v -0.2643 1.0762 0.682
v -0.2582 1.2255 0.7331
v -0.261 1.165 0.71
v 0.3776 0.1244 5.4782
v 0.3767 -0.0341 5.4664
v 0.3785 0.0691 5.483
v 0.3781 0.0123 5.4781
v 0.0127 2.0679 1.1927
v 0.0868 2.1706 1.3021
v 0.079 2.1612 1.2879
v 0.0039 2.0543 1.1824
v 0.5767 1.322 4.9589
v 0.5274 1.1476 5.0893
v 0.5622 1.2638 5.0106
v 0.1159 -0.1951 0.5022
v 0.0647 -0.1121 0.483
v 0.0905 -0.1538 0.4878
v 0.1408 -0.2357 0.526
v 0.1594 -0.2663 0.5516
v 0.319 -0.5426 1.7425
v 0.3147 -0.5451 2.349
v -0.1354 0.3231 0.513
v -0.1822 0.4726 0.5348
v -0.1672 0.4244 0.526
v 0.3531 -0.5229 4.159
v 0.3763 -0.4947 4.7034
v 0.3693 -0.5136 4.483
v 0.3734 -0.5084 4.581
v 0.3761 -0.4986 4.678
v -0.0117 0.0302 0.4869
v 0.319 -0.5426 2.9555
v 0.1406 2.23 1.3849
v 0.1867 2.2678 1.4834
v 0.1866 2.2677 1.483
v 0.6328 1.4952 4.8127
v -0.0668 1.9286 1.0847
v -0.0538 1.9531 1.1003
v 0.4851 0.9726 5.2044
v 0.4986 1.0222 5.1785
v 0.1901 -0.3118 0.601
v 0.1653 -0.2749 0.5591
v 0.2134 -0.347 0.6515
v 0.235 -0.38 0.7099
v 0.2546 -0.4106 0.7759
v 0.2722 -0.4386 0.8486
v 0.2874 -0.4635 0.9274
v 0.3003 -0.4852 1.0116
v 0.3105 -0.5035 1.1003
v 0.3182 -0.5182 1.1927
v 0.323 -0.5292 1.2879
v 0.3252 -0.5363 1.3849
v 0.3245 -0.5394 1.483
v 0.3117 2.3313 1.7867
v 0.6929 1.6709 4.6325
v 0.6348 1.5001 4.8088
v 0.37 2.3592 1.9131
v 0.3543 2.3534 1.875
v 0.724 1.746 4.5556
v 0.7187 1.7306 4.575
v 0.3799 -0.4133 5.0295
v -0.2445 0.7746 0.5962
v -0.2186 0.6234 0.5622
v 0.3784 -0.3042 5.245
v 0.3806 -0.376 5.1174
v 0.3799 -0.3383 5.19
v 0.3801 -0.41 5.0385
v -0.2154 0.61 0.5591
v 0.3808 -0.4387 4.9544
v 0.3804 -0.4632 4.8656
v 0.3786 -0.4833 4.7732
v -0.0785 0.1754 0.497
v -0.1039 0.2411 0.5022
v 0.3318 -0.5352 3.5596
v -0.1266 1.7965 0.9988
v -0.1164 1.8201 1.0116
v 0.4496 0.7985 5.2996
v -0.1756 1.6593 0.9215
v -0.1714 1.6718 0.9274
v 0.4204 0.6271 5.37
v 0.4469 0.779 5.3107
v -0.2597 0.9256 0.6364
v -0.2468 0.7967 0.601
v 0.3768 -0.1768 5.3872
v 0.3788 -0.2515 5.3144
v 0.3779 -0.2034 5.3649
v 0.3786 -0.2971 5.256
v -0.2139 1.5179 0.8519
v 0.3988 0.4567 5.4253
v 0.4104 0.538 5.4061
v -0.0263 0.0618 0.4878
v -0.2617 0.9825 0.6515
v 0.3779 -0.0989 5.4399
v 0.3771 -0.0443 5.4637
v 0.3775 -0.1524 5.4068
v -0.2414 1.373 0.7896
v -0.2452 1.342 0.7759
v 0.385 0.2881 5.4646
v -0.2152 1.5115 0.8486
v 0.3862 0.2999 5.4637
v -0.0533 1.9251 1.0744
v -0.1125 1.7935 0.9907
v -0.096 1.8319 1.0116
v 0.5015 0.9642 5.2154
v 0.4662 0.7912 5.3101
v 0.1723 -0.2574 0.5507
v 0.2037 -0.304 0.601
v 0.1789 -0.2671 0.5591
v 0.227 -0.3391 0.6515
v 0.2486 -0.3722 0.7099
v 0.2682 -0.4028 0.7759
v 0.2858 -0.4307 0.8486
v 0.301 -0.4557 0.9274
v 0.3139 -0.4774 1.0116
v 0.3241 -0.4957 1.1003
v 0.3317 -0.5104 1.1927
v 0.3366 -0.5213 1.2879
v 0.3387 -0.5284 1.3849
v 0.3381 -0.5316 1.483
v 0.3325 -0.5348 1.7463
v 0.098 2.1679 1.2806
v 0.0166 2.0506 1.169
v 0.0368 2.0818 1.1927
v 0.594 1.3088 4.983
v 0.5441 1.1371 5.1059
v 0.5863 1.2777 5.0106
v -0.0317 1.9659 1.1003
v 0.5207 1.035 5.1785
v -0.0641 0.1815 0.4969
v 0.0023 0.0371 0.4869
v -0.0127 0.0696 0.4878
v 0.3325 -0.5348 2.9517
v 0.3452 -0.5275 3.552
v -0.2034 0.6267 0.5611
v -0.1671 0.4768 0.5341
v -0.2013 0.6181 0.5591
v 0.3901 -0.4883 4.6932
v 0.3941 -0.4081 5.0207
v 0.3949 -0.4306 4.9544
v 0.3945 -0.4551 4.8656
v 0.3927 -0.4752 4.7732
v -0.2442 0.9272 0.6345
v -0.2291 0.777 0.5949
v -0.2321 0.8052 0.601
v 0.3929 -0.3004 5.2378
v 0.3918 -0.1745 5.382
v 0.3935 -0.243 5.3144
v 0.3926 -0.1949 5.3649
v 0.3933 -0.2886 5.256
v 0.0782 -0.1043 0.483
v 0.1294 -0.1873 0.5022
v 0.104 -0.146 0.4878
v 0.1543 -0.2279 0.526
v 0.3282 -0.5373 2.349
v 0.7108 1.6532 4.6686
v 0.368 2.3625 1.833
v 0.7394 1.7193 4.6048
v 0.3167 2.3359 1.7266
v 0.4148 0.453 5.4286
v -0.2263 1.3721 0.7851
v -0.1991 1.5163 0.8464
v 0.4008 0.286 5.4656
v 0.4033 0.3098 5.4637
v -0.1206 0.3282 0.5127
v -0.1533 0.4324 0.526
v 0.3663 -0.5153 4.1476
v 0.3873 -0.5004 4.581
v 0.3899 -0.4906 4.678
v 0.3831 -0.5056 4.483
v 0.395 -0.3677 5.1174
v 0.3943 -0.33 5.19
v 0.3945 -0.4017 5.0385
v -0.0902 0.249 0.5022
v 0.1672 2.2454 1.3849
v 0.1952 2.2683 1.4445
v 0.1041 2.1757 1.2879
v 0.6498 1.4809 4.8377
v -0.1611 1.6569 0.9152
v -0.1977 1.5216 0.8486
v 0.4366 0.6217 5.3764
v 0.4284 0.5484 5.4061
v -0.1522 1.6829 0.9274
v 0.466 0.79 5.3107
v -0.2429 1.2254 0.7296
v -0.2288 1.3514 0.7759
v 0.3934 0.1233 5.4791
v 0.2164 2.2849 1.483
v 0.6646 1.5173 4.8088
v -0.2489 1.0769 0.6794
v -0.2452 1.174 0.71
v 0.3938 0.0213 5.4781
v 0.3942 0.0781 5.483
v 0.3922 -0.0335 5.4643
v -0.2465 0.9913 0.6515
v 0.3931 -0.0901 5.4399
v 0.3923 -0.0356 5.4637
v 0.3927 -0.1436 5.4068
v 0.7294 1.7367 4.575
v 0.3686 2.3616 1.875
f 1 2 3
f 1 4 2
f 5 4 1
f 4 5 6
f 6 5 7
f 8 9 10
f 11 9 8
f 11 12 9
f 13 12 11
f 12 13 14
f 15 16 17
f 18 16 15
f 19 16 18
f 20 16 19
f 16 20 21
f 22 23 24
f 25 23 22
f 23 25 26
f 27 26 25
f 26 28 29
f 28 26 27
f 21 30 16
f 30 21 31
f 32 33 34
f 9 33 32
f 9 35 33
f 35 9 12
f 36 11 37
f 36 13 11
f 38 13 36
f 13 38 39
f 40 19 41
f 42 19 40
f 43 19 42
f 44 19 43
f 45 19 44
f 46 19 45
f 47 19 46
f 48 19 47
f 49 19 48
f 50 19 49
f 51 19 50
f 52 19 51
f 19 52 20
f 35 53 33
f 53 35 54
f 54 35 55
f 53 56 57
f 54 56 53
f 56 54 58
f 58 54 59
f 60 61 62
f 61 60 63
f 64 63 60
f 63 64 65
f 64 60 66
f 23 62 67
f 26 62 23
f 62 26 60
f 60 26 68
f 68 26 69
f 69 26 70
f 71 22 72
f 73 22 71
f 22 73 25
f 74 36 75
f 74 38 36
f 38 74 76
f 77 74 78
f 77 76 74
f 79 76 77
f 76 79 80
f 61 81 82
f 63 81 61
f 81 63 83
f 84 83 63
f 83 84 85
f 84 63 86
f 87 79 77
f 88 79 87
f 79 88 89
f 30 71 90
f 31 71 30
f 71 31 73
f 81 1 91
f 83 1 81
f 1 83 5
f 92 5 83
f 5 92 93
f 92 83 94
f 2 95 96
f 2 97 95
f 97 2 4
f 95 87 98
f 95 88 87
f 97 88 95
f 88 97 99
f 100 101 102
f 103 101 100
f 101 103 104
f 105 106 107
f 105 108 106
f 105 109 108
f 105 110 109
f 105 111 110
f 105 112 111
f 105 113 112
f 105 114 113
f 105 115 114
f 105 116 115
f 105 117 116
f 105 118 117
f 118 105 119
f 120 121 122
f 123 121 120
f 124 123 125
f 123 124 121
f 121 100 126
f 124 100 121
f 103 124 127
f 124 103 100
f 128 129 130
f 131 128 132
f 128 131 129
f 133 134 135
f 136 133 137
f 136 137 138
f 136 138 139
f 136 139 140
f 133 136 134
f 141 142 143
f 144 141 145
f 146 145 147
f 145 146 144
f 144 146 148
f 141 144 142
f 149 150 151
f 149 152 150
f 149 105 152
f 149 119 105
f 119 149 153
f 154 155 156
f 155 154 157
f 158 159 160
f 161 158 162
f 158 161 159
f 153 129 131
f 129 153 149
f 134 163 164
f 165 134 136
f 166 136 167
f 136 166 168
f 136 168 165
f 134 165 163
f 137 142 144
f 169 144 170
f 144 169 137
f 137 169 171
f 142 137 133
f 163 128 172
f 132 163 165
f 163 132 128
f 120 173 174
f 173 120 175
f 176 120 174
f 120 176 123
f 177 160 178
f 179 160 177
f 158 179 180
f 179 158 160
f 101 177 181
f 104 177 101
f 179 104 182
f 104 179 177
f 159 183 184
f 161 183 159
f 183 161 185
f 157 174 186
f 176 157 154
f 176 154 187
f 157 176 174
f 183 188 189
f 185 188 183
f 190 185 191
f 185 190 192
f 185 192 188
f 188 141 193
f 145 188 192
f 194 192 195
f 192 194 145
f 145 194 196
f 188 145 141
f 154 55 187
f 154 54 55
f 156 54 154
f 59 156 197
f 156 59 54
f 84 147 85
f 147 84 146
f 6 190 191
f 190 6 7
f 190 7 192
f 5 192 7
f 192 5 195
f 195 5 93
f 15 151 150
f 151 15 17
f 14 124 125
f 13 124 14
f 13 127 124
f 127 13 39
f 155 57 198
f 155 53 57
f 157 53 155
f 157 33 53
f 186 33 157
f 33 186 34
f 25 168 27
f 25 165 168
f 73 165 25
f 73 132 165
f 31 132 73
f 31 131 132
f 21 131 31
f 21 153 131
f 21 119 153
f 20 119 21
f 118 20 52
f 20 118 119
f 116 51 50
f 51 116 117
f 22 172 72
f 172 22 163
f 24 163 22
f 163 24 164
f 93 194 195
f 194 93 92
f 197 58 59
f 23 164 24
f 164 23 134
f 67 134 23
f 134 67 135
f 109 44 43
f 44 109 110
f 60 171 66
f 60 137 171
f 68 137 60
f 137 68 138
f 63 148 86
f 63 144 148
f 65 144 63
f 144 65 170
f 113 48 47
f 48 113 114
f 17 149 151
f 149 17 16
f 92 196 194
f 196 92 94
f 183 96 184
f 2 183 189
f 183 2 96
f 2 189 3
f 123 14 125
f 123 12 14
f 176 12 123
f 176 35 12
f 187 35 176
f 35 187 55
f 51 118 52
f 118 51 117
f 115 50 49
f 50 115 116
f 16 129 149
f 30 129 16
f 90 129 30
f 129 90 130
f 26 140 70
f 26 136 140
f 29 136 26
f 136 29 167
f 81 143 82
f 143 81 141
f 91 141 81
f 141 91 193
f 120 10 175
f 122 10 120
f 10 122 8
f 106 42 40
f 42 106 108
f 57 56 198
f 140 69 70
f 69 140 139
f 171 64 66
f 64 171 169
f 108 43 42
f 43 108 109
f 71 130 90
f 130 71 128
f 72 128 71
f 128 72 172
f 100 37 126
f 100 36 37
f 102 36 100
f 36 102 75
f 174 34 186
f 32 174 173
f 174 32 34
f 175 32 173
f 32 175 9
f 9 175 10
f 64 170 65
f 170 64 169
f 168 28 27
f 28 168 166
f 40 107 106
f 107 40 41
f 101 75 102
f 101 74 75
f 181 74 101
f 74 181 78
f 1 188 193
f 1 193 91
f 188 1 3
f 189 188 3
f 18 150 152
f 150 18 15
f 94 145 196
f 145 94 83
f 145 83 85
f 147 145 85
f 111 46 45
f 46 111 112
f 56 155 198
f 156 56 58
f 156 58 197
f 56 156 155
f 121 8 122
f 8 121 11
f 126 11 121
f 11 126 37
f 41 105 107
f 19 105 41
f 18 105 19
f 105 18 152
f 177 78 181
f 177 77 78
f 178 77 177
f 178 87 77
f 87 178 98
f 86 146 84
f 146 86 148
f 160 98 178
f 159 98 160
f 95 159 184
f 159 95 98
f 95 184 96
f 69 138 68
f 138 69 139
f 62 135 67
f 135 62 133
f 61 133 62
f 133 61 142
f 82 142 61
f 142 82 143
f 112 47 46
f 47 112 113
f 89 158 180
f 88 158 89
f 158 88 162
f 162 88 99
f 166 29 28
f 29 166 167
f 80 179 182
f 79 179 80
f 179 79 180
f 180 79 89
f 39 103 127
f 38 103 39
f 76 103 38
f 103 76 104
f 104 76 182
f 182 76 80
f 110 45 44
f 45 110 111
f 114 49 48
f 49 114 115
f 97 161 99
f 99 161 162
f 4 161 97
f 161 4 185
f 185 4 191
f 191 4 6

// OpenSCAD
// file: ../../constraints.scad
//####################################
// Math-Magik LPP - Design Constraints
// (c) 2021 by Roie R. Black
//====================================

// AMA Rules for event 208
//------------------------------------

max_overall_length = 20;
max_projected_wing_span = 18;
max_bearing_to_rear_hook = 10;
max_wing_chord = 5;
max_stab_span = 12;
max_stab_chord = 4;
max_prop_diameter = 12;
// file: ../colors.scad
// colors.scad
// Credit: David Powell, OpenSCAN Forum



//group ABS_<colorname>
//	discription  common 3d printer ABS filament colors
// actual colours may need some tweaking

ABS_Nature =[0.8,0.8,0.8,0.8];
ABS_White =[0.9,0.9,0.9,1];
ABS_Black =[0.1,0.1,0.1,1];
ABS_Red = [0.7,0,0,1];
ABS_Green = [0,0.7,0,1];
ABS_Blue = [0,0,0.7,1];
ABS_Orange =[0.8,0.4,0,1];
ABS_Purple =[0.7,0,0.7,1];
ABS_Brown =[0.6,0.2,0.2,1];
ABS_Glow_Blue =[0,0,.99,1];
ABS_Flurescence_Green =[0,1,0,1];
ABS_Flurescence_Yellow = [0.9,0.9,0,1];

//group PLA_<colorname>
//	discription  common 3d printer PLA filament colors
// actual colours may need some tweaking

PLA_Nature =[0.8,0.8,0.8,0.8];
PLA_White =[0.9,0.9,0.9,1];
PLA_Black =[0.1,0.1,0.1,1];
PLA_Red = [0.7,0,0,1];
PLA_Green = [0,0.7,0,1];
PLA_Blue = [0,0,0.7,1];
PLA_Orange =[0.8,0.4,0,1];
PLA_Purple =[0.7,0,0.7,1];
PLA_Brown =[0.6,0.2,0.2,1];
PLA_Glow_Blue =[0,0,.99,1];
PLA_Flurescence_Green =[0,1,0,1];
PLA_Flurescence_Yellow = [0.9,0.9,0,1];

//group ANODIZED_<colorname>
//	discription  common aluminium anodized colors
// these don't seem to follow normal color tables as the process
// produces a color change difference to the named color
// dew to base metal
// actual colours may need some tweaking

ANODIZED_Red =[0.7,0,0,1];
ANODIZED_Gold =[0.8,0.8,0.0,1];
ANODIZED_Black =[0.1,0.1,0.1,1];
ANODIZED_Blue =[0,0,0.7,1];
ANODIZED_Green =[0,0.5,0,1];
ANODIZED_Gray =[0.4,0.4,0.4,1];
ANODIZED_Dark_Blue =[0,0.2,0.6,1];
ANODIZED_Lime_Green =[0,0.8,0,1];
ANODIZED_Purple =[0.5,0,0.7,1];		//more blue than purple
ANODIZED_Light_Blue =[0.4,0.4,1,1];
ANODIZED_Pink =[0.7,0,0.7,1];		//more purlpe than pink
ANODIZED_Orange =[0.9,0.5,0,1];
ANODIZED_Scandia_Gold =[0.9,0.6,0.3,1];
ANODIZED_Copper =[0.7,0.5,0,1];		//more brown than copper
ANODIZED_Clear =[0.7,0.7,0.9,1];	//natural aluminium color
ANODIZED_Light_Bronze =[0.4,0.4,0.3,1]; //more silver than bronze
ANODIZED_Gold_Nickel =[0.8,0.8,0.6,1];
ANODIZED_Brush_Nickel =[0.8,0.8,0.7,1];

//group METAL_<typename>
//	discription common metal colors
// colors need tweaking

METAL_Aluminium = [0.7,0.7,0.8,1];
METAL_Brass = [0.88,0.78,0.5,1];
METAL_Copper = [0.9,0.6,0.5,1];
METAL_Steel = [0.9,0.9,0.8,1];
METAL_Stainless = [0.8,0.8,0.7,1];
METAL_Titanium = [0.7,0.7,0.6,1];
METAL_Bronze = [0.9,0.4,0.4,1];
METAL_Gold = [0.9,0.9,0.0,1];
METAL_Silver = [0.8,0.8,0.8,1];
METAL_Iron = [0.6,0.6,0.6,1];

// group WOOD_<typename>
//	discription common wood colors
// probabaly wrong

WOOD_Oak = [0.4,0.2,0.2,1];
WOOD_Birch = [0.8,0.8,0.4,1];
WOOD_Red = [0.7,0.3,0.3,1];
WOOD_pine = [0.8,0.8,0.4,1];
WOOD_Beach = [0.8,0.6,0.3,1];
WOOD_Spruce = [0.8,0.8,0.7,1];
WOOD_Balsa = [0.95,0.86,0.73];

// group GLASS_<color>
//	discription common glass colors
// needs tweaking

GLASS_Clear = [0.8,0.8,0.8,0.2];
GLASS_Red = [0.8,0,0,0.4];
GLASS_Green = [0,0.8,0,.4];
GLASS_Blue = [0,0,0.8,.4];
GLASS_Brown = [0.5,0.3,0.1,.4];

CONCRETE = [210/255, 209/255, 205/255];
// file: MMlib/elliptic_blade_blank.scad
// elliptic_blade_blank.scad
$fn=64;

module _ellipse(width, height) {
  scale([1, height/width, 1]) circle(r=width/2);
}

module elliptic_blade_blank(
    s=8,
    c=3,
    f=2,
    s1=3,
    s2=5,
    s3=2,
    s4=2) {
  // first quadrant
  translate([0,s-s4])
    intersection() {
      _ellipse(2 * (c-f),2 * s4);
      translate([0,0]) square([(c-f),s4]);
   }
  // second quadrant
  translate([0,s1])
  intersection() {
    _ellipse(2 * f,2 * s2);
    translate([-f,0]) square([f,s2]);
  }
  // third quadrant
  translate([0,s1])
  intersection() {
    _ellipse(2 * f,2 * s1);
    translate([-f,-s1]) square([f,s1]);
  }
  // fourth quadrant
  //translate([0,s3])
  intersection() {
    translate([0,s3])
      _ellipse(2 *(c-f),2 * s3);
    square([(c-f),s3]);
  }
  // trailing edge flat
  translate([0,s3]) square([c-f,s-s3-s4]);
}

elliptic_blade_blank();
// file: ../prop_data.scad
//#####################################
// prop-blade-data.scad
// (c) 2021 by Roie R. Black
//*************************************
include <colors.scad>
include <../constraints.scad>

// Propeller dimensions
prop_radius = max_prop_diameter/2;
prop_pitch_angle = 40;
prop_blade_offset = 0.5;

prop_spar_inner_radius = 1/32;
prop_spar_outer_radius = 1/64;
prop_spar_length = 4;

prop_spar_color = WOOD_Balsa;

// prop blade dimensions
prop_blade_thickness = 1/64;
prop_max_chord = 1.85;

// prop form dimensions
prop_form_radius = 2.5;
prop_form_height = prop_radius + 2;
prop_form_angle = 14;

// elliptic form data
s = prop_radius - 1;
c = 2.5;
f = 2;
s1 = 1;
s2 = s - s1;
s3 = 1;
s4 = 1;

prop_blade_color = WOOD_Balsa;

//-------------------------------------
// calculated by analysis
prop_forward_x = -1.3287;
// file: colors.scad
// colors.scad
// Credit: David Powell, OpenSCAN Forum



//group ABS_<colorname>
//	discription  common 3d printer ABS filament colors
// actual colours may need some tweaking

ABS_Nature =[0.8,0.8,0.8,0.8];
ABS_White =[0.9,0.9,0.9,1];
ABS_Black =[0.1,0.1,0.1,1];
ABS_Red = [0.7,0,0,1];
ABS_Green = [0,0.7,0,1];
ABS_Blue = [0,0,0.7,1];
ABS_Orange =[0.8,0.4,0,1];
ABS_Purple =[0.7,0,0.7,1];
ABS_Brown =[0.6,0.2,0.2,1];
ABS_Glow_Blue =[0,0,.99,1];
ABS_Flurescence_Green =[0,1,0,1];
ABS_Flurescence_Yellow = [0.9,0.9,0,1];

//group PLA_<colorname>
//	discription  common 3d printer PLA filament colors
// actual colours may need some tweaking

PLA_Nature =[0.8,0.8,0.8,0.8];
PLA_White =[0.9,0.9,0.9,1];
PLA_Black =[0.1,0.1,0.1,1];
PLA_Red = [0.7,0,0,1];
PLA_Green = [0,0.7,0,1];
PLA_Blue = [0,0,0.7,1];
PLA_Orange =[0.8,0.4,0,1];
PLA_Purple =[0.7,0,0.7,1];
PLA_Brown =[0.6,0.2,0.2,1];
PLA_Glow_Blue =[0,0,.99,1];
PLA_Flurescence_Green =[0,1,0,1];
PLA_Flurescence_Yellow = [0.9,0.9,0,1];

//group ANODIZED_<colorname>
//	discription  common aluminium anodized colors
// these don't seem to follow normal color tables as the process
// produces a color change difference to the named color
// dew to base metal
// actual colours may need some tweaking

ANODIZED_Red =[0.7,0,0,1];
ANODIZED_Gold =[0.8,0.8,0.0,1];
ANODIZED_Black =[0.1,0.1,0.1,1];
ANODIZED_Blue =[0,0,0.7,1];
ANODIZED_Green =[0,0.5,0,1];
ANODIZED_Gray =[0.4,0.4,0.4,1];
ANODIZED_Dark_Blue =[0,0.2,0.6,1];
ANODIZED_Lime_Green =[0,0.8,0,1];
ANODIZED_Purple =[0.5,0,0.7,1];		//more blue than purple
ANODIZED_Light_Blue =[0.4,0.4,1,1];
ANODIZED_Pink =[0.7,0,0.7,1];		//more purlpe than pink
ANODIZED_Orange =[0.9,0.5,0,1];
ANODIZED_Scandia_Gold =[0.9,0.6,0.3,1];
ANODIZED_Copper =[0.7,0.5,0,1];		//more brown than copper
ANODIZED_Clear =[0.7,0.7,0.9,1];	//natural aluminium color
ANODIZED_Light_Bronze =[0.4,0.4,0.3,1]; //more silver than bronze
ANODIZED_Gold_Nickel =[0.8,0.8,0.6,1];
ANODIZED_Brush_Nickel =[0.8,0.8,0.7,1];

//group METAL_<typename>
//	discription common metal colors
// colors need tweaking

METAL_Aluminium = [0.7,0.7,0.8,1];
METAL_Brass = [0.88,0.78,0.5,1];
METAL_Copper = [0.9,0.6,0.5,1];
METAL_Steel = [0.9,0.9,0.8,1];
METAL_Stainless = [0.8,0.8,0.7,1];
METAL_Titanium = [0.7,0.7,0.6,1];
METAL_Bronze = [0.9,0.4,0.4,1];
METAL_Gold = [0.9,0.9,0.0,1];
METAL_Silver = [0.8,0.8,0.8,1];
METAL_Iron = [0.6,0.6,0.6,1];

// group WOOD_<typename>
//	discription common wood colors
// probabaly wrong

WOOD_Oak = [0.4,0.2,0.2,1];
WOOD_Birch = [0.8,0.8,0.4,1];
WOOD_Red = [0.7,0.3,0.3,1];
WOOD_pine = [0.8,0.8,0.4,1];
WOOD_Beach = [0.8,0.6,0.3,1];
WOOD_Spruce = [0.8,0.8,0.7,1];
WOOD_Balsa = [0.95,0.86,0.73];

// group GLASS_<color>
//	discription common glass colors
// needs tweaking

GLASS_Clear = [0.8,0.8,0.8,0.2];
GLASS_Red = [0.8,0,0,0.4];
GLASS_Green = [0,0.8,0,.4];
GLASS_Blue = [0,0,0.8,.4];
GLASS_Brown = [0.5,0.3,0.1,.4];

CONCRETE = [210/255, 209/255, 205/255];
// main file
//#######################################
// blade.scad prop_blade
// (c) 2021 - Roie R. Black
//***************************************
include <colors.scad>
include <../prop_data.scad>
use <MMlib/elliptic_blade_blank.scad>

$fn = 100;


module prop_form() {
	difference() {
		cylinder(
			r=prop_form_radius,
			h=prop_form_height);
    translate([0,0,-1])
      cylinder(
        r=prop_form_radius-prop_blade_thickness,
        h=prop_form_height+2);
	}
}

module prop_blade_slicer() {
  translate([0,-1,0.5])
    rotate([90,-15,0])
      linear_extrude(
        height = prop_form_radius,
        center = false,
        convexity = 10
      )
        elliptic_blade_blank(s,c,f,s1,s2,s3,s4);
}

module blade() {
  color(prop_blade_color)
    rotate([0,15,-60])
      translate([0,prop_form_radius,0]) {
        intersection() {
          prop_form();
          prop_blade_slicer();
        }
      }
}

blade();
